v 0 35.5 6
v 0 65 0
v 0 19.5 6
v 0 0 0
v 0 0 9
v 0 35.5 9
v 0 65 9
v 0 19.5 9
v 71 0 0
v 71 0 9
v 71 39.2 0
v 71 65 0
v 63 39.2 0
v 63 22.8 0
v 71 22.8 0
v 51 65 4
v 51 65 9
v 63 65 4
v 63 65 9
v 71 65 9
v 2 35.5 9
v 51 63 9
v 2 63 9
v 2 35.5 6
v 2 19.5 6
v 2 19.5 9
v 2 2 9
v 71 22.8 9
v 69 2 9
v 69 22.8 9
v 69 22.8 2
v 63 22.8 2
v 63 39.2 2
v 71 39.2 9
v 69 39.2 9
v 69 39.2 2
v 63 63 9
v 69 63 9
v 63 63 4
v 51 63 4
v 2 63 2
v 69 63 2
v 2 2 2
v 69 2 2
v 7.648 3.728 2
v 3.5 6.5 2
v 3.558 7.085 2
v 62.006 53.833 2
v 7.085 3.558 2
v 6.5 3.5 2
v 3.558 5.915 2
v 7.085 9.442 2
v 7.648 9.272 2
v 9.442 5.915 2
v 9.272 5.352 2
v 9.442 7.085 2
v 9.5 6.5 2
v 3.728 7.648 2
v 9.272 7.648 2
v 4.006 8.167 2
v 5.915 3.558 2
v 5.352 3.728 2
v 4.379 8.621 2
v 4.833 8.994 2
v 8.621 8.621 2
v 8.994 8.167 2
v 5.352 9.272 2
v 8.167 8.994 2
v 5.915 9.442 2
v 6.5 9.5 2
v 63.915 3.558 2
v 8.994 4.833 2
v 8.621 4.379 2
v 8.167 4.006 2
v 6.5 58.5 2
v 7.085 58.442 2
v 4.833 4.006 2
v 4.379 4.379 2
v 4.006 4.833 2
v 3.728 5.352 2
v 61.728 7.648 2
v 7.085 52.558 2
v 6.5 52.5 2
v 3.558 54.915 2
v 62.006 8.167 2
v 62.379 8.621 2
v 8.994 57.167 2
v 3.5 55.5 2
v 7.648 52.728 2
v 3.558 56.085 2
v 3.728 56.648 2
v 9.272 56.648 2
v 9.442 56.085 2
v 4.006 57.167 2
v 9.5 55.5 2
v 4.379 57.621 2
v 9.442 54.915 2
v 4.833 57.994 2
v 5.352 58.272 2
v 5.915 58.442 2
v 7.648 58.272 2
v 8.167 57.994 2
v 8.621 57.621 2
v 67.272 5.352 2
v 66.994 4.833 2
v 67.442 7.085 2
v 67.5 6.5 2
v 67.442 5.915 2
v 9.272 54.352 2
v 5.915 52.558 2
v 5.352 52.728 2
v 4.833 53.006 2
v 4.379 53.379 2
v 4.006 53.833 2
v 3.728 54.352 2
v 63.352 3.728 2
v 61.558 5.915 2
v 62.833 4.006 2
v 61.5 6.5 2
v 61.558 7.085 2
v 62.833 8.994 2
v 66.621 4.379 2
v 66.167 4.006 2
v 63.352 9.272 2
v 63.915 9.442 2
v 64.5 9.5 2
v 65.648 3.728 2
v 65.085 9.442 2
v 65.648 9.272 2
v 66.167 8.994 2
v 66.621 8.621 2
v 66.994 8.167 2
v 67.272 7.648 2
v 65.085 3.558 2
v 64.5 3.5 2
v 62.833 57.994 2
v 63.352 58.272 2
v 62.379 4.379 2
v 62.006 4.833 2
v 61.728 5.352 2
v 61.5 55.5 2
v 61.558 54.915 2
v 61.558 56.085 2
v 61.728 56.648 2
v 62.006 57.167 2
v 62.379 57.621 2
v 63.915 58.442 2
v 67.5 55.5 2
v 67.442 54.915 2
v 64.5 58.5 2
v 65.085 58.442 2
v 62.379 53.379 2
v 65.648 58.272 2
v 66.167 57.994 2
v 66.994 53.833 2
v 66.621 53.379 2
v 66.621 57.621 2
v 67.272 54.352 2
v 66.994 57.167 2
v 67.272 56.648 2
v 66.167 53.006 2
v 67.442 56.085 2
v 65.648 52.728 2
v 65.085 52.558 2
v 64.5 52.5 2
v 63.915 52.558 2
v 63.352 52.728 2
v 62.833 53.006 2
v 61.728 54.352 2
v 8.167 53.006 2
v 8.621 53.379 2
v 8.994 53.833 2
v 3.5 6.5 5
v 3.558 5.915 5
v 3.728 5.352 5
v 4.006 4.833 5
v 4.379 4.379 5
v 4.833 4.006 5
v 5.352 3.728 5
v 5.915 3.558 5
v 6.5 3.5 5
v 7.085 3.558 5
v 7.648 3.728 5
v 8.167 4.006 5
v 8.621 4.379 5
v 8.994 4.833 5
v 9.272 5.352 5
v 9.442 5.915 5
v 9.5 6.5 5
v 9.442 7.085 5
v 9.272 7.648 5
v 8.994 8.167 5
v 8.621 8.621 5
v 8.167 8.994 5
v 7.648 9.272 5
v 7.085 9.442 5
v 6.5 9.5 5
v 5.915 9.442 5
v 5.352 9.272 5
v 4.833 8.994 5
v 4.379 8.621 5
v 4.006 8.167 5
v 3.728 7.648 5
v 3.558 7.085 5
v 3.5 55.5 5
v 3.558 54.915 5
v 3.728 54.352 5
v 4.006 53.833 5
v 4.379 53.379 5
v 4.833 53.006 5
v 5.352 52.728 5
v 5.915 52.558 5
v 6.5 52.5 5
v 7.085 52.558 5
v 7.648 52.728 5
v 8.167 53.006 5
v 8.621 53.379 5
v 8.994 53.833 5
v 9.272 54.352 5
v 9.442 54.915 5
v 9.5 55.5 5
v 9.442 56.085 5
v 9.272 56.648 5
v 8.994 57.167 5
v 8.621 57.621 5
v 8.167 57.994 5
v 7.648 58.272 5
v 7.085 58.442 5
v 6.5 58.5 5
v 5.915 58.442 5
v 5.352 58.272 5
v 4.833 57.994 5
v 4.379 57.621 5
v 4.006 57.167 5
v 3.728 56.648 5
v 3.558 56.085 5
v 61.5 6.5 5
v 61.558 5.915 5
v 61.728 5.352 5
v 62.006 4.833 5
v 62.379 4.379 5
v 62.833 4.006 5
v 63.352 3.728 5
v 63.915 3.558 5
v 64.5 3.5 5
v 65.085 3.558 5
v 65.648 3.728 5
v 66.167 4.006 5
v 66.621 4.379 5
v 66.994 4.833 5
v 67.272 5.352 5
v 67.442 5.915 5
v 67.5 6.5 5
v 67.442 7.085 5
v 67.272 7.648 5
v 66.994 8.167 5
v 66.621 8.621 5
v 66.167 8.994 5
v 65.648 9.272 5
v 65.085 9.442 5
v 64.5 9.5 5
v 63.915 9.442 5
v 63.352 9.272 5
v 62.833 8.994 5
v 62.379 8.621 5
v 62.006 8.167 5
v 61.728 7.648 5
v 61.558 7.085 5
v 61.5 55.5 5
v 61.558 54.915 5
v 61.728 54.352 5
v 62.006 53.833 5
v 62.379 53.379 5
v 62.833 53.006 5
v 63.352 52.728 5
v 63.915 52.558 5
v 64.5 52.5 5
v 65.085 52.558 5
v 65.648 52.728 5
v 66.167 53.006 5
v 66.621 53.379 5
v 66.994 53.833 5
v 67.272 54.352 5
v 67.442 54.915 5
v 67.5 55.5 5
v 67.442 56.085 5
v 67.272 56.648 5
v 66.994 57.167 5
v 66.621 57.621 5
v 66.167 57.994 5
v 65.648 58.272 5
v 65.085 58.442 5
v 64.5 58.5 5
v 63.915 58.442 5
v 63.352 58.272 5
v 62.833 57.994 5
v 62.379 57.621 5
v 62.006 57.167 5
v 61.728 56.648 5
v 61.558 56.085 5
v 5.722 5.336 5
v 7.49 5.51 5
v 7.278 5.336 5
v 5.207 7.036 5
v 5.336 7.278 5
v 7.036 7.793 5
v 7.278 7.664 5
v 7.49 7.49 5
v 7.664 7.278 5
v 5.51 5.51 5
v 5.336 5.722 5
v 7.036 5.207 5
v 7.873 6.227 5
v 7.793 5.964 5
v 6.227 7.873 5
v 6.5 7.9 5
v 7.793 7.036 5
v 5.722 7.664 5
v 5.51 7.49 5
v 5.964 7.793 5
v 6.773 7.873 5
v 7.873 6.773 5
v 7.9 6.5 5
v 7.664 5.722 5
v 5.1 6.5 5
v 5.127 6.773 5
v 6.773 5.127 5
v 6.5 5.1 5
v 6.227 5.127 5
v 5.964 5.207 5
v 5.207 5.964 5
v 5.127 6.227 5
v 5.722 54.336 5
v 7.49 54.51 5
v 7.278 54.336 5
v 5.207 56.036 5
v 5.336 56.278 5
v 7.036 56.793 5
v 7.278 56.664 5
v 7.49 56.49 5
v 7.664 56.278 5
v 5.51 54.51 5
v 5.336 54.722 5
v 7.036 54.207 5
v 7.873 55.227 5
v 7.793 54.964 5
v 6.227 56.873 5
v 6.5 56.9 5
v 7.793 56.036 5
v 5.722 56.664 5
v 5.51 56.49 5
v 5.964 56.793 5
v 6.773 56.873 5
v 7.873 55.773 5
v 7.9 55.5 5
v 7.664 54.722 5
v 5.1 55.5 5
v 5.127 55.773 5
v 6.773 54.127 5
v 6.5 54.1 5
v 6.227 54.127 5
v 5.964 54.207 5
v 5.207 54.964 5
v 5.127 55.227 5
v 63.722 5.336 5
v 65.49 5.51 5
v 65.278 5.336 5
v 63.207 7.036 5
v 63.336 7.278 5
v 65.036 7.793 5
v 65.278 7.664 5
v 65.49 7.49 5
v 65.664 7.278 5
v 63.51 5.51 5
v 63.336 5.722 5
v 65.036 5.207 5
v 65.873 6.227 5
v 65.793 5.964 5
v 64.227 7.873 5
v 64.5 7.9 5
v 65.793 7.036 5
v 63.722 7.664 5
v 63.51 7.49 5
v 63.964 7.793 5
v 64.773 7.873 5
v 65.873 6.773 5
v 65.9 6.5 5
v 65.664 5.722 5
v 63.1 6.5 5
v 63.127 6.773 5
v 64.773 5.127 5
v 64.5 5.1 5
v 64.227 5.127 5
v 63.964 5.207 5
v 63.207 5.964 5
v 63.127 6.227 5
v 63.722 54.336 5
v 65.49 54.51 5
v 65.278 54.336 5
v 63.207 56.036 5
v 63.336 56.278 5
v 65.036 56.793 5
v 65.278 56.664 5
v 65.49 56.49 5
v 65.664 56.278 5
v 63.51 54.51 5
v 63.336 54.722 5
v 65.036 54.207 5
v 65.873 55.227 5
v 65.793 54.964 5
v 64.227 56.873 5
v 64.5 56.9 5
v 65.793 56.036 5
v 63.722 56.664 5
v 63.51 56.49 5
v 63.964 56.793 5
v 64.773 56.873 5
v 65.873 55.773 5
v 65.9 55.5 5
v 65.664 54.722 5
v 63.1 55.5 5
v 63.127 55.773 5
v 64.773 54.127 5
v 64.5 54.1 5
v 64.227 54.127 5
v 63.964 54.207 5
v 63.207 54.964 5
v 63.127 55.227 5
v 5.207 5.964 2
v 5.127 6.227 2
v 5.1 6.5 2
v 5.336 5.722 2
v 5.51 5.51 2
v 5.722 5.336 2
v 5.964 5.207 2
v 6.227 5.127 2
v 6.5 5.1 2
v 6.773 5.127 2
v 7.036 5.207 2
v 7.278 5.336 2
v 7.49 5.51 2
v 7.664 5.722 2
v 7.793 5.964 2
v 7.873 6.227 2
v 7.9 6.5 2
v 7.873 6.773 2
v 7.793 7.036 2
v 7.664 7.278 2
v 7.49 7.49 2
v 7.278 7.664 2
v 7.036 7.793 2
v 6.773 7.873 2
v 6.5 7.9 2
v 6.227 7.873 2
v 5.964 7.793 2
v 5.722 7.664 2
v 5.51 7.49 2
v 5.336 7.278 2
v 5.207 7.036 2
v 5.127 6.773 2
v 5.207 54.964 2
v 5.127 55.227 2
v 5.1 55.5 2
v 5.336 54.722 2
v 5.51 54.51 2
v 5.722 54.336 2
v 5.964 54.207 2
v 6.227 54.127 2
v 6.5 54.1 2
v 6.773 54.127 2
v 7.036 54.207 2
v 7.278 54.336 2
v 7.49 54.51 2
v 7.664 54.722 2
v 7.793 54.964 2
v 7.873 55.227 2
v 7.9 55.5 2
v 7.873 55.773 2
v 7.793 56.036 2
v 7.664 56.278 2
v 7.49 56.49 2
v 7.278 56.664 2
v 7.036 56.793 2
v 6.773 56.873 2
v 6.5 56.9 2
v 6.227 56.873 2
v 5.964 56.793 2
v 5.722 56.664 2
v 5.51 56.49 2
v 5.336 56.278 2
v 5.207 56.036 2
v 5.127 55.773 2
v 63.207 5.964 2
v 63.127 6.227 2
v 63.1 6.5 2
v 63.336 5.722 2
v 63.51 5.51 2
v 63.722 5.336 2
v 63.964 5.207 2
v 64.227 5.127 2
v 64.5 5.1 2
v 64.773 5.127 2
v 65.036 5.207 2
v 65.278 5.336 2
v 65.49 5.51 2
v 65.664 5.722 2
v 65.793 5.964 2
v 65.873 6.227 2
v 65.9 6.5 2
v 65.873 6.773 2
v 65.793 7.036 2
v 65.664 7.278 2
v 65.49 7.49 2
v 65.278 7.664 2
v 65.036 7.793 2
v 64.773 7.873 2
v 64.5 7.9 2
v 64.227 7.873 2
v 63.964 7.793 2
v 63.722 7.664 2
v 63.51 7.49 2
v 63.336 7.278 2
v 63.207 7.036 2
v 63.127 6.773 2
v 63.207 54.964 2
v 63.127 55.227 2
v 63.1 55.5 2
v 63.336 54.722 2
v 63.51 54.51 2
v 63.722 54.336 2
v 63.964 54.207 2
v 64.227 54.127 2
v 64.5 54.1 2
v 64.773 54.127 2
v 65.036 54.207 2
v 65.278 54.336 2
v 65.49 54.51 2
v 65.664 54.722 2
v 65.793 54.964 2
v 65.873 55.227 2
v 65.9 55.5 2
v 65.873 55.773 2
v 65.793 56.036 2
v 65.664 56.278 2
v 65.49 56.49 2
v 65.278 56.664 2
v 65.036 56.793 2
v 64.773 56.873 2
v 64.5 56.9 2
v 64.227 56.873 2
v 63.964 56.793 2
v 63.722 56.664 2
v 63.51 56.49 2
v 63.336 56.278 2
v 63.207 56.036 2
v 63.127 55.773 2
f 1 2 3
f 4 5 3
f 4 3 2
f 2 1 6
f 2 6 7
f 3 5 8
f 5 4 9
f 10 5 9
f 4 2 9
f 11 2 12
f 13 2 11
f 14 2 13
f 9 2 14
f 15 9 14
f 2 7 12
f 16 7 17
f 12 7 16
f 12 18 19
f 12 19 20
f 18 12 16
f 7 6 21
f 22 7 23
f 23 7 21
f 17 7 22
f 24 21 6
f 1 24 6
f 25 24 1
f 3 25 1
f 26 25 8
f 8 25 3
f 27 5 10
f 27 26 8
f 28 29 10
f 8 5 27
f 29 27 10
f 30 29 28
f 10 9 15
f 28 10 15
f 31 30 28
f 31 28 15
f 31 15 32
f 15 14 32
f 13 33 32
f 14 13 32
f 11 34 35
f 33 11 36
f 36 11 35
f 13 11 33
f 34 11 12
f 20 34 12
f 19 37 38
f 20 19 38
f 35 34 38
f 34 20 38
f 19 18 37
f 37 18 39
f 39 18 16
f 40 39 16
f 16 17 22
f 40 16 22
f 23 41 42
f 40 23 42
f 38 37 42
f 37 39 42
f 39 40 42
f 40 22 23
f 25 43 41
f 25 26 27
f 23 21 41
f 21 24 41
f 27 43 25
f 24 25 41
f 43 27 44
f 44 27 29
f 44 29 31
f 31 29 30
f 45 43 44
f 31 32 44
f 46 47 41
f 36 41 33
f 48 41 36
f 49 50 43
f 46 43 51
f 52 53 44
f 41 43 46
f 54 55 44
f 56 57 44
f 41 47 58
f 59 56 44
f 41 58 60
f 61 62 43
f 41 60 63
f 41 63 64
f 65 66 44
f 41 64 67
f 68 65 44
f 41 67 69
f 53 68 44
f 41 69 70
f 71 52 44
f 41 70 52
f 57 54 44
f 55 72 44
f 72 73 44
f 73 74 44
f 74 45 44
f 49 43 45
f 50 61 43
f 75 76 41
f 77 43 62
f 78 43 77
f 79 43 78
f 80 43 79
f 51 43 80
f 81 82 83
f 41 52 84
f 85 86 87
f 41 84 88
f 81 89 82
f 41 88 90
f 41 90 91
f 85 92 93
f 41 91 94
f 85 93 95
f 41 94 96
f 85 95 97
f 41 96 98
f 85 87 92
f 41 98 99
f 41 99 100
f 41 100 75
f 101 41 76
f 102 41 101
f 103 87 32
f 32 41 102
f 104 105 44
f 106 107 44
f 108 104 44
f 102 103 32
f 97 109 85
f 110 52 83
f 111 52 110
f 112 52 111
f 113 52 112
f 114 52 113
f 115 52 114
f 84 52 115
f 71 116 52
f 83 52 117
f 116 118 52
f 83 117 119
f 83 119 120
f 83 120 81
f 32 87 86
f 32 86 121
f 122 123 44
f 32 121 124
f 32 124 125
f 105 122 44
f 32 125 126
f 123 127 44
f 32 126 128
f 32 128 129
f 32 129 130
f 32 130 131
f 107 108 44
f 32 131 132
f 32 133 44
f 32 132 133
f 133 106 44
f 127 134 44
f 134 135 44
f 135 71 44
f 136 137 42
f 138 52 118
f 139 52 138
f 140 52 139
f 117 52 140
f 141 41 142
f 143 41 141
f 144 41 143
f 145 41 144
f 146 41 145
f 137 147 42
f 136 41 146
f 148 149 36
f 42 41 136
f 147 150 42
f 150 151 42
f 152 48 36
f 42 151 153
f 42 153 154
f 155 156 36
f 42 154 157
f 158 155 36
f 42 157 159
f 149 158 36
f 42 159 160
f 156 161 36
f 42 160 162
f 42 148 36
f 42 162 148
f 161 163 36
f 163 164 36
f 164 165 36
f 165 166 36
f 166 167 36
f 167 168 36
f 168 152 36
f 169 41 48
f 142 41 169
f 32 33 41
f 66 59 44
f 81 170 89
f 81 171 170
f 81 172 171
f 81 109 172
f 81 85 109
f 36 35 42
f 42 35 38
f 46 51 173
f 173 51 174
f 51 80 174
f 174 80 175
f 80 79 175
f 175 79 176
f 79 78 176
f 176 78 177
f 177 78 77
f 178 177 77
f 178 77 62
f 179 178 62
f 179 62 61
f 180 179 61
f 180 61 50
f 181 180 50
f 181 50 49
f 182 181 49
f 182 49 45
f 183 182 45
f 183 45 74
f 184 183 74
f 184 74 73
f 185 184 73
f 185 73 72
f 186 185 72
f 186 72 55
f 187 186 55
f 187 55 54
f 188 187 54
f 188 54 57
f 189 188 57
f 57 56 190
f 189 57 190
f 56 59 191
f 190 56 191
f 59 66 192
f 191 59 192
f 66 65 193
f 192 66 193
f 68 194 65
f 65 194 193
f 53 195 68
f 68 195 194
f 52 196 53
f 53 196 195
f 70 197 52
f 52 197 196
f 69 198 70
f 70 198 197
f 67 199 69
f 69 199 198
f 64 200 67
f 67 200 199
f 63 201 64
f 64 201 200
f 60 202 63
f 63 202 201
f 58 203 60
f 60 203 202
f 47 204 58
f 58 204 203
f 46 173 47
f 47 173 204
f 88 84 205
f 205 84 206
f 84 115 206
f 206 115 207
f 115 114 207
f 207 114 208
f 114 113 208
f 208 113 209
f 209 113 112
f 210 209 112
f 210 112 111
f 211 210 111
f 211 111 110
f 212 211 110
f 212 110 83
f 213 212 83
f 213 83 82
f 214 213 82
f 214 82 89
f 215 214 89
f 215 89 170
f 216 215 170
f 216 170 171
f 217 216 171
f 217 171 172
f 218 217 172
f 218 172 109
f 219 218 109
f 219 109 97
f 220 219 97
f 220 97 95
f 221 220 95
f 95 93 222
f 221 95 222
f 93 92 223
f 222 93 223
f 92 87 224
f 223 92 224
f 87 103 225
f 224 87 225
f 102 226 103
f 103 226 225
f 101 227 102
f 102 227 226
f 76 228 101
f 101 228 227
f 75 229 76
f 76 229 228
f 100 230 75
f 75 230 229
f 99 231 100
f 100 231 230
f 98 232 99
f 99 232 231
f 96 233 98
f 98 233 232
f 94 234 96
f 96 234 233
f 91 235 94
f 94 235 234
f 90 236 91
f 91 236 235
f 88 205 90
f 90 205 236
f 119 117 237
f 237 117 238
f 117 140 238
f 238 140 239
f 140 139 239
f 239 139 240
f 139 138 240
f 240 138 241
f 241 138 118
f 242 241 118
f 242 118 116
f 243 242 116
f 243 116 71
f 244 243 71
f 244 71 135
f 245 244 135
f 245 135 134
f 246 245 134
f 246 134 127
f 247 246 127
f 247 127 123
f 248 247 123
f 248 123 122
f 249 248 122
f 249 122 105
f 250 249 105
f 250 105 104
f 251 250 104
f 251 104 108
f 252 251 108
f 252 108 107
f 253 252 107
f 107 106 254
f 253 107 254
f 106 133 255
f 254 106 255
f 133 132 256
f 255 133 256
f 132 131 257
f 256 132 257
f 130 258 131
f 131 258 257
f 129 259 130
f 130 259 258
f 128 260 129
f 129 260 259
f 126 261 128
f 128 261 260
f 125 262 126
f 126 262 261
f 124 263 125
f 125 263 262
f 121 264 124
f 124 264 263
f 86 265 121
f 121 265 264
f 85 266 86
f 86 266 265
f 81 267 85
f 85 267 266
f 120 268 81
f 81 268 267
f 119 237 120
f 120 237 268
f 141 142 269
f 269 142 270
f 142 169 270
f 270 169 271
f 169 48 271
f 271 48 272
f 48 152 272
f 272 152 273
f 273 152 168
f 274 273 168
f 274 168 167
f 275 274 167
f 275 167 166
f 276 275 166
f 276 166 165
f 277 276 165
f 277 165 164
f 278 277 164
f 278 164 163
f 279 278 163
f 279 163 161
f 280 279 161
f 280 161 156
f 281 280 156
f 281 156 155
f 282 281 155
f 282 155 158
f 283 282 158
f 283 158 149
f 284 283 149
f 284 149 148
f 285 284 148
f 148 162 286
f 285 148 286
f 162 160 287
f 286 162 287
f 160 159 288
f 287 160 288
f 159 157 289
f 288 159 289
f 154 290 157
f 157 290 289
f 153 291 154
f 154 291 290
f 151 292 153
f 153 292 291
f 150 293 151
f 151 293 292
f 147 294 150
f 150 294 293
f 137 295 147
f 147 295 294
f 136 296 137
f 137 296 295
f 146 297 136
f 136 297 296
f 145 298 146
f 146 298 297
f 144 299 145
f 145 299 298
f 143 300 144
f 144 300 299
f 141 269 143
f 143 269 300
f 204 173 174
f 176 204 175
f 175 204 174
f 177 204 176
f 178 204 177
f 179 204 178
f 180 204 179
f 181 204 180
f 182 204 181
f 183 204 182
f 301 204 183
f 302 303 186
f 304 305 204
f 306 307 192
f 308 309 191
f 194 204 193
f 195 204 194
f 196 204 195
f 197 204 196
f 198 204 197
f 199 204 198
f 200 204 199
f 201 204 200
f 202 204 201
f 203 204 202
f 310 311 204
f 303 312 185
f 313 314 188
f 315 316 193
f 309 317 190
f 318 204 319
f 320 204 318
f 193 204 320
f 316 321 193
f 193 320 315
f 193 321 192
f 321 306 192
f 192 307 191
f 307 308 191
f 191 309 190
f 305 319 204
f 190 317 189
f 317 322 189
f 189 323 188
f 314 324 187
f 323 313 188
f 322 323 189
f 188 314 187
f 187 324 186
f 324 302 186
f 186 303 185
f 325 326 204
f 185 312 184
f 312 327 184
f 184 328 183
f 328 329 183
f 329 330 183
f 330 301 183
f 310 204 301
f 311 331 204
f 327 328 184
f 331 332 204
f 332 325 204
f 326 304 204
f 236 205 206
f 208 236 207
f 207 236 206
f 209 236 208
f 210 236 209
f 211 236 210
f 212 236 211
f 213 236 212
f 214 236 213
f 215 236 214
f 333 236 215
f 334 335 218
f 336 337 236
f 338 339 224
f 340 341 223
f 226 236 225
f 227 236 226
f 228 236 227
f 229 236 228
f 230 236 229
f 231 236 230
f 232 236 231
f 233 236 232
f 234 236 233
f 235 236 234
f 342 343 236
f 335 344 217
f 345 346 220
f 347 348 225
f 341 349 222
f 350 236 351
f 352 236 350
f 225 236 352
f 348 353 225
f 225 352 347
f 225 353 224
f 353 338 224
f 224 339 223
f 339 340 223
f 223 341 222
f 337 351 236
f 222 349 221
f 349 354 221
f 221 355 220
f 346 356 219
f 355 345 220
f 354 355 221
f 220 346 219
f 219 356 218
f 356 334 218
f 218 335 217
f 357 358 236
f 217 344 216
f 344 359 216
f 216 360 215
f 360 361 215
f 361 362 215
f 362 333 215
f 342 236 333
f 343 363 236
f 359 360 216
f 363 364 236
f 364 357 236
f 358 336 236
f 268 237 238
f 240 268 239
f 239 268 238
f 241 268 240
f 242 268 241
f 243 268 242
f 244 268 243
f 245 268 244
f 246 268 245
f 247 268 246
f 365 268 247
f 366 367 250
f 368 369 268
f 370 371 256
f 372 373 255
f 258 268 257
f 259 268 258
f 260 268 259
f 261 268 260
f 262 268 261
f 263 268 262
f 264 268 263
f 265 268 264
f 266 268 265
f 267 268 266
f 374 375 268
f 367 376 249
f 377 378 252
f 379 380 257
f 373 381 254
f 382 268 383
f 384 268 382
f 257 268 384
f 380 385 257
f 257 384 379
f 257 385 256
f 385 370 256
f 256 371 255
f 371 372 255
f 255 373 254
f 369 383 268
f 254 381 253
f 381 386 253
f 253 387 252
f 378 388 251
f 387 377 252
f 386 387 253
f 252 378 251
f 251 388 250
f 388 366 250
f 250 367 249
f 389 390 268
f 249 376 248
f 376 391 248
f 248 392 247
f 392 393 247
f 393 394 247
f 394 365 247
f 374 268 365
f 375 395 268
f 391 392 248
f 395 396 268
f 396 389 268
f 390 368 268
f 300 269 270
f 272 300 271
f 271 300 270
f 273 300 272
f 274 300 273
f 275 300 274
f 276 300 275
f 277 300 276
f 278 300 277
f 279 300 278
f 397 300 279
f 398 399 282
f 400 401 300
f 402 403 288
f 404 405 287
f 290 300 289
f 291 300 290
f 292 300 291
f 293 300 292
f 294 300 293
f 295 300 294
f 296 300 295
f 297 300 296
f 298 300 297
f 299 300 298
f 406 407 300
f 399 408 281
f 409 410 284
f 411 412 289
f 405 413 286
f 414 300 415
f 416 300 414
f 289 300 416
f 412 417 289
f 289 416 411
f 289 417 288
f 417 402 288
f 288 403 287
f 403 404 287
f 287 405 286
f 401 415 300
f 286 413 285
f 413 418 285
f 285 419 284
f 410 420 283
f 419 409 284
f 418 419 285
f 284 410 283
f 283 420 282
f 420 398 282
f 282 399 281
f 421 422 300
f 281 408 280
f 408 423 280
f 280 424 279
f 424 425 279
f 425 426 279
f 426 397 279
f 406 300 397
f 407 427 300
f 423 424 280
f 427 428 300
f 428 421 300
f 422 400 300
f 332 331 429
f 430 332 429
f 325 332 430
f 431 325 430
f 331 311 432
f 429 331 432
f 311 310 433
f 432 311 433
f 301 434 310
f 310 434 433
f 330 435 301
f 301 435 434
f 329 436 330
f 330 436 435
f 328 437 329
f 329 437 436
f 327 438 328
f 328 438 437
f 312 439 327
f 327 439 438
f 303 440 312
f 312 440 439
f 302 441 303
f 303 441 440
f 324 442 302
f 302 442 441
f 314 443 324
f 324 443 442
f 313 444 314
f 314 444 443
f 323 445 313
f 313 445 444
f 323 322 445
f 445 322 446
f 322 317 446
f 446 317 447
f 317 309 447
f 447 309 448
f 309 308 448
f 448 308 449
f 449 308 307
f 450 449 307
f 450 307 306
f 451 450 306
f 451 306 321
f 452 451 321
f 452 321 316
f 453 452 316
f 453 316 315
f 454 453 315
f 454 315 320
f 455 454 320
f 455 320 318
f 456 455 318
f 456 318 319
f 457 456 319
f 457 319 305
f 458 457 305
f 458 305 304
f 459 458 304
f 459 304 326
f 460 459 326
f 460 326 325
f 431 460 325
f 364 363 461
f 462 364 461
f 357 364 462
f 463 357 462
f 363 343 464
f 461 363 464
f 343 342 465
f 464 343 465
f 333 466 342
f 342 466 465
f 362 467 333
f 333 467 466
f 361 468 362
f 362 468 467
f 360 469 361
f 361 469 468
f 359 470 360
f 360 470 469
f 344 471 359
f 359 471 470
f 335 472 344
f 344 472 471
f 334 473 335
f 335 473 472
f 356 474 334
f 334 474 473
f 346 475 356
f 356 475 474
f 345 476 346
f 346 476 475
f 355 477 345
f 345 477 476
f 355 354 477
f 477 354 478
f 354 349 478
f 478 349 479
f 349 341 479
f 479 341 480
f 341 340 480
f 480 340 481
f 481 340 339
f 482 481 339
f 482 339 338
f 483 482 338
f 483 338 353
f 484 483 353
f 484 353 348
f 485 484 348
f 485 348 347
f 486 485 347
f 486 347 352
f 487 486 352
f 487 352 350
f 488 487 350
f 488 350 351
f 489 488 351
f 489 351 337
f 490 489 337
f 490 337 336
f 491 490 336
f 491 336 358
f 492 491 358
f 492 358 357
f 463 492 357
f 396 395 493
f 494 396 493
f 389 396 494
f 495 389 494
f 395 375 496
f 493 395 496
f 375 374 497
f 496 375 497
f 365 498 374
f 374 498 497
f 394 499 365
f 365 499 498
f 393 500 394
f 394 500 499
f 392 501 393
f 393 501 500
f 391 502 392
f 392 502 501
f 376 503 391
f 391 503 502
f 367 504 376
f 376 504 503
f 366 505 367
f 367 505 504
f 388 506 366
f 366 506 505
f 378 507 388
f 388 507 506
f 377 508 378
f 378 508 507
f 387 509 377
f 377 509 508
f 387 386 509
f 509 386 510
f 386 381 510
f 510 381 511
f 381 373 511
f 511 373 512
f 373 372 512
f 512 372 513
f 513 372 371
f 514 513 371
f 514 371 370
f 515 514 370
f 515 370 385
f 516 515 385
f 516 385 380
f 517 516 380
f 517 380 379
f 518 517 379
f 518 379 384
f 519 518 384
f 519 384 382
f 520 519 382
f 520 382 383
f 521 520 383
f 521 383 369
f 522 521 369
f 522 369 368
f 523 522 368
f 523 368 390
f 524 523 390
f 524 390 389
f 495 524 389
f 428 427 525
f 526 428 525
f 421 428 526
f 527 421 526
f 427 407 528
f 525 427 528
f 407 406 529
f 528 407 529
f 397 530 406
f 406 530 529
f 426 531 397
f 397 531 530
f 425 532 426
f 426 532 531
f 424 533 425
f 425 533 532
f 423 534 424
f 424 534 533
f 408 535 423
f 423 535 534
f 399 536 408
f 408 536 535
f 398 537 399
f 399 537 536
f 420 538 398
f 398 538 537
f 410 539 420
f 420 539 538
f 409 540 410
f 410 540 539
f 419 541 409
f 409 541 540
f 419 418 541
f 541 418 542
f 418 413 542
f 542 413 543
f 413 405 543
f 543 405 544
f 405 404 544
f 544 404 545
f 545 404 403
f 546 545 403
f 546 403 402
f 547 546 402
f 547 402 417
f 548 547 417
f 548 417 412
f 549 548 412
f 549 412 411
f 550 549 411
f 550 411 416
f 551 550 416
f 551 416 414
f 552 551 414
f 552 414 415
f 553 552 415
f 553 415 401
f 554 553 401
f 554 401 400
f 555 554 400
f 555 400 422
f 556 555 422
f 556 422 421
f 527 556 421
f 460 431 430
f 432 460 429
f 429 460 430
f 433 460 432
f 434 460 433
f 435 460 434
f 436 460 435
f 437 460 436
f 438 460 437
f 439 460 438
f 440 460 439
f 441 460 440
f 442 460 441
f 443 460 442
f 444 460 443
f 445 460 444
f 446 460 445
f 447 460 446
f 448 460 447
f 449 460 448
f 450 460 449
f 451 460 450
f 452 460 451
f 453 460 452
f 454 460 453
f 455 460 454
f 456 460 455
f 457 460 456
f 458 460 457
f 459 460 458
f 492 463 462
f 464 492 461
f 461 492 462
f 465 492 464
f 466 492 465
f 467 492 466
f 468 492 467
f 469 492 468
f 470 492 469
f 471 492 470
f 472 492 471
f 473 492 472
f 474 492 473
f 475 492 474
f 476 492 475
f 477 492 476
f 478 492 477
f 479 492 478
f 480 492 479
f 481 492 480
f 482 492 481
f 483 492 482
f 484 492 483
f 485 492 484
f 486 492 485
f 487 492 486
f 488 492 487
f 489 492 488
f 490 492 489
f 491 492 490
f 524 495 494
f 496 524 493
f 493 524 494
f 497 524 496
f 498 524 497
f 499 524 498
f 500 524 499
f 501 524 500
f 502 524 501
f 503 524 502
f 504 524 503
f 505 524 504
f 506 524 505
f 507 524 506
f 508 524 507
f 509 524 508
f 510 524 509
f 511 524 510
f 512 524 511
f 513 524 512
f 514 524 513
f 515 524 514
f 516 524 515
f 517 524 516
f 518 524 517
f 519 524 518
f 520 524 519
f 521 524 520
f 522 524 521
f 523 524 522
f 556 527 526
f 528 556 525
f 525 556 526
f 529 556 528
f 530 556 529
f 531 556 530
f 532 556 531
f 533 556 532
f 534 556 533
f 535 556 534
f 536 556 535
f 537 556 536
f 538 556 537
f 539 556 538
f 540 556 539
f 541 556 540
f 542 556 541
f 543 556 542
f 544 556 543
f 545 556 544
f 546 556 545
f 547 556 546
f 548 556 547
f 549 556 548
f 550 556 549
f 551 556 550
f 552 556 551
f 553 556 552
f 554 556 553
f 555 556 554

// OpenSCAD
height=9;

$fn=32;

module post(){
  difference() {
    cylinder(5,3,3);
    translate([0,0,-0.5]) cylinder(6,1.4,1.4);
  }
}


difference(){
  union(){
    cube([71,65,2]);
    cube([71,2,height]);
    cube([2,65,height]);
    translate([0,65-2,0]) cube([71,2,height]);
    translate([71-2,0,0]) cube([2,65,height]);
  }
  translate([71-8,23-0.2,-0.5]) cube([10,16.4,10]); // Micro SD
  translate([-1,19.5,6]) cube([4,16,10]); // USB
  translate([71-8-12,65-3,4]) cube([12,8,5.5]); // Power
}

translate([6.5,6.5,0]) post();
translate([6.5,65-6.5-3,0]) post();
translate([71-6.5,6.5,0]) post();
translate([71-6.5,65-6.5-3,0]) post();
